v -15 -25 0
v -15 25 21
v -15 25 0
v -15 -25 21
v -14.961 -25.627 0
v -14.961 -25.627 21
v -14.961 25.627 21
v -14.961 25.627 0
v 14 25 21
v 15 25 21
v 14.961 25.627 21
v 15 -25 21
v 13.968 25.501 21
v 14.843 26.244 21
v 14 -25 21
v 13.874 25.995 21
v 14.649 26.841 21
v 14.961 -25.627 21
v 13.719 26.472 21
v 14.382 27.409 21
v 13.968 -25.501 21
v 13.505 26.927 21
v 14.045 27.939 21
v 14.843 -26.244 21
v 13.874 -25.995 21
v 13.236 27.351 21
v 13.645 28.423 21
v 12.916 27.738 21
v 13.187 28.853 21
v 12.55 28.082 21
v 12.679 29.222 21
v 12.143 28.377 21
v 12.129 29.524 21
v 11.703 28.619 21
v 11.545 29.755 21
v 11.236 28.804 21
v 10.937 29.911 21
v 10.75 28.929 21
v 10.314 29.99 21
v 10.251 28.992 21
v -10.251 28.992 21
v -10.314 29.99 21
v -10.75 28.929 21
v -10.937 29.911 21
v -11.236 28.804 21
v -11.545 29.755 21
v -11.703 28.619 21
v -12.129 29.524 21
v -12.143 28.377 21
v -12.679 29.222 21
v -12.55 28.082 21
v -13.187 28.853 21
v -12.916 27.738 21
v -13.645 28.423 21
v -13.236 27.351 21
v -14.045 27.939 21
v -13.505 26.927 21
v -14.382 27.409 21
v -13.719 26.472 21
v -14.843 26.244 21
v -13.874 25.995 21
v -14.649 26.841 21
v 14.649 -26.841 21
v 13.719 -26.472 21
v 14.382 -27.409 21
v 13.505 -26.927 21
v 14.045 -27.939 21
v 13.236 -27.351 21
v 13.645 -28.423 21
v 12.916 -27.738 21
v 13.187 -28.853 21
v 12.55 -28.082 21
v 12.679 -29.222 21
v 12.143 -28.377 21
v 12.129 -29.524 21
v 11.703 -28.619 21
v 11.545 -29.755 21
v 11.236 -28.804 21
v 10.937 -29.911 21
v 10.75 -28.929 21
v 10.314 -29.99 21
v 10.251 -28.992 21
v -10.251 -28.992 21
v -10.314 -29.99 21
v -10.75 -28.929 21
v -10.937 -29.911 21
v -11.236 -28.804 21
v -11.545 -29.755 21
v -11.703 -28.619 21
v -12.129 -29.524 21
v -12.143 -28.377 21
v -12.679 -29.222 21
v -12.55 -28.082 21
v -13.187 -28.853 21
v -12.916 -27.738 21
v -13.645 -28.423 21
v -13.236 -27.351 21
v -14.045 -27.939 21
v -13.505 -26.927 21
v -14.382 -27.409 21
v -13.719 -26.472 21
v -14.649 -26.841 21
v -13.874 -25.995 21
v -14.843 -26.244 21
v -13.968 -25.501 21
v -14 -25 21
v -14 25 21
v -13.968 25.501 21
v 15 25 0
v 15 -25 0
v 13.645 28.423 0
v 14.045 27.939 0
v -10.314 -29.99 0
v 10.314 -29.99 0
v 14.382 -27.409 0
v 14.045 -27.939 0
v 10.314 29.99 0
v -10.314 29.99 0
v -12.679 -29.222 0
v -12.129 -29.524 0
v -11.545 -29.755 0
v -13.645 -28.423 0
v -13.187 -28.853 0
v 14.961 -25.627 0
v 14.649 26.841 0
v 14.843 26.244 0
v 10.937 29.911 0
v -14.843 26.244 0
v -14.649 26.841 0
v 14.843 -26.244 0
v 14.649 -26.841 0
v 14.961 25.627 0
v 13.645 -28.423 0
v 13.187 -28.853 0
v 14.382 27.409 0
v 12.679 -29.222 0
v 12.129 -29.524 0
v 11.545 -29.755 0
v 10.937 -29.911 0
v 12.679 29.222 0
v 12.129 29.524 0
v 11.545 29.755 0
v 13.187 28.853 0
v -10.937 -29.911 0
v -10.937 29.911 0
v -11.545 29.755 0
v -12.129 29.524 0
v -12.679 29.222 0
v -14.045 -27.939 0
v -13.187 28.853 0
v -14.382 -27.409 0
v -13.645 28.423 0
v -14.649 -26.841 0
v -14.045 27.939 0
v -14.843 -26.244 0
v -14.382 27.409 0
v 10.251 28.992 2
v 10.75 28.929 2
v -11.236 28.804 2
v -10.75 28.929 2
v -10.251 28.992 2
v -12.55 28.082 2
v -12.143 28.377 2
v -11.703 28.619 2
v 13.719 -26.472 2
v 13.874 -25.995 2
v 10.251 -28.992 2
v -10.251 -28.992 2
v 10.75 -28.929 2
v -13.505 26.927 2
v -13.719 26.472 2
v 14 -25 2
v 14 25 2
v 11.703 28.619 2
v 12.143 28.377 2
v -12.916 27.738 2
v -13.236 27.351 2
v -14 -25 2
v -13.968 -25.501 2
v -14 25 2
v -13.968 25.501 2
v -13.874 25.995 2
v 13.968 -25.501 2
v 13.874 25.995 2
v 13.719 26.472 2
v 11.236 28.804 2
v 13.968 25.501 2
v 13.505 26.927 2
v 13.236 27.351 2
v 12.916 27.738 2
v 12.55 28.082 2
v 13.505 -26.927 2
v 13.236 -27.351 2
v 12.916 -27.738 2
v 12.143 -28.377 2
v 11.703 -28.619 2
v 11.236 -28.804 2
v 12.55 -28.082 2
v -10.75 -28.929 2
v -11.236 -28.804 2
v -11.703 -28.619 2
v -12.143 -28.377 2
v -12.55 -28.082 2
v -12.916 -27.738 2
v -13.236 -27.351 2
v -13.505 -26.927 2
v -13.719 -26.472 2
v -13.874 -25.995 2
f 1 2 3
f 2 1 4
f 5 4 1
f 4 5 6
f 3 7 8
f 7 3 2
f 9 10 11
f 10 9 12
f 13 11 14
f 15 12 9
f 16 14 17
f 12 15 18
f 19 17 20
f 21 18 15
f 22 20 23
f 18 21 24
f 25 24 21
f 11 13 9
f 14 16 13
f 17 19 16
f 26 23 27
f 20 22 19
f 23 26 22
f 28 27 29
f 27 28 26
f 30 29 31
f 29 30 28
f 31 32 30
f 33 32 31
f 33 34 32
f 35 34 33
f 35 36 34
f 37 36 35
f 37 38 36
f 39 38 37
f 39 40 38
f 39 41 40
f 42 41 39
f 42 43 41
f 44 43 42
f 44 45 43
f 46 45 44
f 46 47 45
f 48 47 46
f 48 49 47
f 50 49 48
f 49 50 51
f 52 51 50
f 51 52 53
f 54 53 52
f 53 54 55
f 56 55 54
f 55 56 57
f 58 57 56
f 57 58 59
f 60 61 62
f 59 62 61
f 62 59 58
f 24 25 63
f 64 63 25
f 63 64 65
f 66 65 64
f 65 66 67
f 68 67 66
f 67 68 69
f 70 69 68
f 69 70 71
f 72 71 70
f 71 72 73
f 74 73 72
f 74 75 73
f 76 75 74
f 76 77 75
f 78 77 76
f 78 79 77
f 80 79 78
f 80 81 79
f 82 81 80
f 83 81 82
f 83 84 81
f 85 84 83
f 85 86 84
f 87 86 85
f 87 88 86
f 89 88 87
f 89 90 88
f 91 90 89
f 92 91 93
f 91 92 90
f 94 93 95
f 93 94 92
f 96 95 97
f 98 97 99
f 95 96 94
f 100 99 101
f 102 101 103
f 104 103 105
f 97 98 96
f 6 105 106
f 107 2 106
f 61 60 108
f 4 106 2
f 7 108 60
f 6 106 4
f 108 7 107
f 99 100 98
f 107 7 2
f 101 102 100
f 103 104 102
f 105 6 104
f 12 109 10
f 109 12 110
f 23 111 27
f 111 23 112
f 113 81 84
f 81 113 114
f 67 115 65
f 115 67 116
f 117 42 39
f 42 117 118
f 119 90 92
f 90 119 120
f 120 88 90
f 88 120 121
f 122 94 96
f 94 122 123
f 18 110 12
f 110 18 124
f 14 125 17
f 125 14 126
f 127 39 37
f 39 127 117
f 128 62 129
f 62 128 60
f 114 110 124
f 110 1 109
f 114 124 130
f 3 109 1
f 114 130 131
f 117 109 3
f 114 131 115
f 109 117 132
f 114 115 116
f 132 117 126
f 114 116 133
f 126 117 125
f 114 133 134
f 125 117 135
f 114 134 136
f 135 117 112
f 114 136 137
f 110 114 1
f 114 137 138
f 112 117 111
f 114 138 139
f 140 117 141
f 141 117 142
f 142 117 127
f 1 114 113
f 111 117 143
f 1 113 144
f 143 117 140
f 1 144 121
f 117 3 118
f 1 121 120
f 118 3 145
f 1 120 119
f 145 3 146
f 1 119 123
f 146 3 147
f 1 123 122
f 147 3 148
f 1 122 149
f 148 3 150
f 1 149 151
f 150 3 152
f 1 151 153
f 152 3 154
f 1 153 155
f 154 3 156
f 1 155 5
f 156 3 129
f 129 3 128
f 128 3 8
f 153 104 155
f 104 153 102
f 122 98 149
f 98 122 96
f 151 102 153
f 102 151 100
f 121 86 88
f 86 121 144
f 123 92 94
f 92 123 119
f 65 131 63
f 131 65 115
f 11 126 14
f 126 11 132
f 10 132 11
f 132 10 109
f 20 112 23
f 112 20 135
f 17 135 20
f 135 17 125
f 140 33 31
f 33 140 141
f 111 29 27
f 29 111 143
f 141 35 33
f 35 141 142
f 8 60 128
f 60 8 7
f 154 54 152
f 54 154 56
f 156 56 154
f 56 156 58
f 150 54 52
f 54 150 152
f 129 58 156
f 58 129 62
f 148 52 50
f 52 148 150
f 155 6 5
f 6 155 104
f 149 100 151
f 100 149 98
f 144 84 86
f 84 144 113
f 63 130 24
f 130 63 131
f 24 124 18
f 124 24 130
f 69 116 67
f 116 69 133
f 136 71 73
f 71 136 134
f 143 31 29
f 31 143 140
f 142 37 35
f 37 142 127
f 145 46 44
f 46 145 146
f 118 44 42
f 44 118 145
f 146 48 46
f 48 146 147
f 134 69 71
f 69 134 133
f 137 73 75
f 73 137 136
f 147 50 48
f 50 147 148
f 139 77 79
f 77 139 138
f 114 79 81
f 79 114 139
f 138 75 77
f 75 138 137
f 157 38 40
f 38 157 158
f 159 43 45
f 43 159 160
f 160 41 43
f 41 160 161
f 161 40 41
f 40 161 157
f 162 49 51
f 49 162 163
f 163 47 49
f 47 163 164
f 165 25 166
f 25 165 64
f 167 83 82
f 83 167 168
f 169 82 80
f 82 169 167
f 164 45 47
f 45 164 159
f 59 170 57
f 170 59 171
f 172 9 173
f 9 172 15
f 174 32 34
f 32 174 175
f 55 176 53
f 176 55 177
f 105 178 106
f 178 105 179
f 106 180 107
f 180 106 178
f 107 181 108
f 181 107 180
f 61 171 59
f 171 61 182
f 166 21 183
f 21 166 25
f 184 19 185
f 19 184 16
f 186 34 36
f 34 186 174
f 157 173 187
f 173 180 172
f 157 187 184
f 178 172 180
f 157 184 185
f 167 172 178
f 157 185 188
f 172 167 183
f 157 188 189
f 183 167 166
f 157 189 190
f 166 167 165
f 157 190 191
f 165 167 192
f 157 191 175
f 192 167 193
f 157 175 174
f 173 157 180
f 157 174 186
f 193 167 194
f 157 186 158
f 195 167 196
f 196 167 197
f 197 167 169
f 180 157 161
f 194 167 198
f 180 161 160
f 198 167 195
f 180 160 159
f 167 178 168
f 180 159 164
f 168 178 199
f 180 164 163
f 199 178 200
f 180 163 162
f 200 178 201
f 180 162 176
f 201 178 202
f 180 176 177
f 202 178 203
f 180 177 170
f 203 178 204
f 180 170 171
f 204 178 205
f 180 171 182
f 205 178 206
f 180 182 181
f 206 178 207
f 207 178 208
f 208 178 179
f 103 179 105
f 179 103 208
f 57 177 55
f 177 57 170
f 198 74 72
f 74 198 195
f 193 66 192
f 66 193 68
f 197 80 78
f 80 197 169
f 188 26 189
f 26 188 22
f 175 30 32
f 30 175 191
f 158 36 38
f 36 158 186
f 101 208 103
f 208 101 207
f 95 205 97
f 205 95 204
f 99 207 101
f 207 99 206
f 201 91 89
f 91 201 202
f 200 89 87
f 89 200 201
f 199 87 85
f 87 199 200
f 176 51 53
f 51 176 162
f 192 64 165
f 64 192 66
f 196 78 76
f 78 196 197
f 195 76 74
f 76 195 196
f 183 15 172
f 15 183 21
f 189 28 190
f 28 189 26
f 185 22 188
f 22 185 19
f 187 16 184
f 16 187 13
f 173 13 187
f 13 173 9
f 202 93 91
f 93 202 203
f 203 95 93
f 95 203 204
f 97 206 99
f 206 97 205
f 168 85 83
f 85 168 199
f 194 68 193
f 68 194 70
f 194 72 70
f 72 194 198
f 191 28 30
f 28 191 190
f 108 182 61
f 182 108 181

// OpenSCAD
$fn = 50;


difference() {
	union() {
		hull() {
			translate(v = [-10.0000000000, 25.0000000000, 0]) {
				cylinder(h = 21, r = 5);
			}
			translate(v = [10.0000000000, 25.0000000000, 0]) {
				cylinder(h = 21, r = 5);
			}
			translate(v = [-10.0000000000, -25.0000000000, 0]) {
				cylinder(h = 21, r = 5);
			}
			translate(v = [10.0000000000, -25.0000000000, 0]) {
				cylinder(h = 21, r = 5);
			}
		}
	}
	union() {
		translate(v = [0, 0, 2]) {
			hull() {
				translate(v = [-10.0000000000, 25.0000000000, 0]) {
					cylinder(h = 19, r = 4);
				}
				translate(v = [10.0000000000, 25.0000000000, 0]) {
					cylinder(h = 19, r = 4);
				}
				translate(v = [-10.0000000000, -25.0000000000, 0]) {
					cylinder(h = 19, r = 4);
				}
				translate(v = [10.0000000000, -25.0000000000, 0]) {
					cylinder(h = 19, r = 4);
				}
			}
		}
	}
}
